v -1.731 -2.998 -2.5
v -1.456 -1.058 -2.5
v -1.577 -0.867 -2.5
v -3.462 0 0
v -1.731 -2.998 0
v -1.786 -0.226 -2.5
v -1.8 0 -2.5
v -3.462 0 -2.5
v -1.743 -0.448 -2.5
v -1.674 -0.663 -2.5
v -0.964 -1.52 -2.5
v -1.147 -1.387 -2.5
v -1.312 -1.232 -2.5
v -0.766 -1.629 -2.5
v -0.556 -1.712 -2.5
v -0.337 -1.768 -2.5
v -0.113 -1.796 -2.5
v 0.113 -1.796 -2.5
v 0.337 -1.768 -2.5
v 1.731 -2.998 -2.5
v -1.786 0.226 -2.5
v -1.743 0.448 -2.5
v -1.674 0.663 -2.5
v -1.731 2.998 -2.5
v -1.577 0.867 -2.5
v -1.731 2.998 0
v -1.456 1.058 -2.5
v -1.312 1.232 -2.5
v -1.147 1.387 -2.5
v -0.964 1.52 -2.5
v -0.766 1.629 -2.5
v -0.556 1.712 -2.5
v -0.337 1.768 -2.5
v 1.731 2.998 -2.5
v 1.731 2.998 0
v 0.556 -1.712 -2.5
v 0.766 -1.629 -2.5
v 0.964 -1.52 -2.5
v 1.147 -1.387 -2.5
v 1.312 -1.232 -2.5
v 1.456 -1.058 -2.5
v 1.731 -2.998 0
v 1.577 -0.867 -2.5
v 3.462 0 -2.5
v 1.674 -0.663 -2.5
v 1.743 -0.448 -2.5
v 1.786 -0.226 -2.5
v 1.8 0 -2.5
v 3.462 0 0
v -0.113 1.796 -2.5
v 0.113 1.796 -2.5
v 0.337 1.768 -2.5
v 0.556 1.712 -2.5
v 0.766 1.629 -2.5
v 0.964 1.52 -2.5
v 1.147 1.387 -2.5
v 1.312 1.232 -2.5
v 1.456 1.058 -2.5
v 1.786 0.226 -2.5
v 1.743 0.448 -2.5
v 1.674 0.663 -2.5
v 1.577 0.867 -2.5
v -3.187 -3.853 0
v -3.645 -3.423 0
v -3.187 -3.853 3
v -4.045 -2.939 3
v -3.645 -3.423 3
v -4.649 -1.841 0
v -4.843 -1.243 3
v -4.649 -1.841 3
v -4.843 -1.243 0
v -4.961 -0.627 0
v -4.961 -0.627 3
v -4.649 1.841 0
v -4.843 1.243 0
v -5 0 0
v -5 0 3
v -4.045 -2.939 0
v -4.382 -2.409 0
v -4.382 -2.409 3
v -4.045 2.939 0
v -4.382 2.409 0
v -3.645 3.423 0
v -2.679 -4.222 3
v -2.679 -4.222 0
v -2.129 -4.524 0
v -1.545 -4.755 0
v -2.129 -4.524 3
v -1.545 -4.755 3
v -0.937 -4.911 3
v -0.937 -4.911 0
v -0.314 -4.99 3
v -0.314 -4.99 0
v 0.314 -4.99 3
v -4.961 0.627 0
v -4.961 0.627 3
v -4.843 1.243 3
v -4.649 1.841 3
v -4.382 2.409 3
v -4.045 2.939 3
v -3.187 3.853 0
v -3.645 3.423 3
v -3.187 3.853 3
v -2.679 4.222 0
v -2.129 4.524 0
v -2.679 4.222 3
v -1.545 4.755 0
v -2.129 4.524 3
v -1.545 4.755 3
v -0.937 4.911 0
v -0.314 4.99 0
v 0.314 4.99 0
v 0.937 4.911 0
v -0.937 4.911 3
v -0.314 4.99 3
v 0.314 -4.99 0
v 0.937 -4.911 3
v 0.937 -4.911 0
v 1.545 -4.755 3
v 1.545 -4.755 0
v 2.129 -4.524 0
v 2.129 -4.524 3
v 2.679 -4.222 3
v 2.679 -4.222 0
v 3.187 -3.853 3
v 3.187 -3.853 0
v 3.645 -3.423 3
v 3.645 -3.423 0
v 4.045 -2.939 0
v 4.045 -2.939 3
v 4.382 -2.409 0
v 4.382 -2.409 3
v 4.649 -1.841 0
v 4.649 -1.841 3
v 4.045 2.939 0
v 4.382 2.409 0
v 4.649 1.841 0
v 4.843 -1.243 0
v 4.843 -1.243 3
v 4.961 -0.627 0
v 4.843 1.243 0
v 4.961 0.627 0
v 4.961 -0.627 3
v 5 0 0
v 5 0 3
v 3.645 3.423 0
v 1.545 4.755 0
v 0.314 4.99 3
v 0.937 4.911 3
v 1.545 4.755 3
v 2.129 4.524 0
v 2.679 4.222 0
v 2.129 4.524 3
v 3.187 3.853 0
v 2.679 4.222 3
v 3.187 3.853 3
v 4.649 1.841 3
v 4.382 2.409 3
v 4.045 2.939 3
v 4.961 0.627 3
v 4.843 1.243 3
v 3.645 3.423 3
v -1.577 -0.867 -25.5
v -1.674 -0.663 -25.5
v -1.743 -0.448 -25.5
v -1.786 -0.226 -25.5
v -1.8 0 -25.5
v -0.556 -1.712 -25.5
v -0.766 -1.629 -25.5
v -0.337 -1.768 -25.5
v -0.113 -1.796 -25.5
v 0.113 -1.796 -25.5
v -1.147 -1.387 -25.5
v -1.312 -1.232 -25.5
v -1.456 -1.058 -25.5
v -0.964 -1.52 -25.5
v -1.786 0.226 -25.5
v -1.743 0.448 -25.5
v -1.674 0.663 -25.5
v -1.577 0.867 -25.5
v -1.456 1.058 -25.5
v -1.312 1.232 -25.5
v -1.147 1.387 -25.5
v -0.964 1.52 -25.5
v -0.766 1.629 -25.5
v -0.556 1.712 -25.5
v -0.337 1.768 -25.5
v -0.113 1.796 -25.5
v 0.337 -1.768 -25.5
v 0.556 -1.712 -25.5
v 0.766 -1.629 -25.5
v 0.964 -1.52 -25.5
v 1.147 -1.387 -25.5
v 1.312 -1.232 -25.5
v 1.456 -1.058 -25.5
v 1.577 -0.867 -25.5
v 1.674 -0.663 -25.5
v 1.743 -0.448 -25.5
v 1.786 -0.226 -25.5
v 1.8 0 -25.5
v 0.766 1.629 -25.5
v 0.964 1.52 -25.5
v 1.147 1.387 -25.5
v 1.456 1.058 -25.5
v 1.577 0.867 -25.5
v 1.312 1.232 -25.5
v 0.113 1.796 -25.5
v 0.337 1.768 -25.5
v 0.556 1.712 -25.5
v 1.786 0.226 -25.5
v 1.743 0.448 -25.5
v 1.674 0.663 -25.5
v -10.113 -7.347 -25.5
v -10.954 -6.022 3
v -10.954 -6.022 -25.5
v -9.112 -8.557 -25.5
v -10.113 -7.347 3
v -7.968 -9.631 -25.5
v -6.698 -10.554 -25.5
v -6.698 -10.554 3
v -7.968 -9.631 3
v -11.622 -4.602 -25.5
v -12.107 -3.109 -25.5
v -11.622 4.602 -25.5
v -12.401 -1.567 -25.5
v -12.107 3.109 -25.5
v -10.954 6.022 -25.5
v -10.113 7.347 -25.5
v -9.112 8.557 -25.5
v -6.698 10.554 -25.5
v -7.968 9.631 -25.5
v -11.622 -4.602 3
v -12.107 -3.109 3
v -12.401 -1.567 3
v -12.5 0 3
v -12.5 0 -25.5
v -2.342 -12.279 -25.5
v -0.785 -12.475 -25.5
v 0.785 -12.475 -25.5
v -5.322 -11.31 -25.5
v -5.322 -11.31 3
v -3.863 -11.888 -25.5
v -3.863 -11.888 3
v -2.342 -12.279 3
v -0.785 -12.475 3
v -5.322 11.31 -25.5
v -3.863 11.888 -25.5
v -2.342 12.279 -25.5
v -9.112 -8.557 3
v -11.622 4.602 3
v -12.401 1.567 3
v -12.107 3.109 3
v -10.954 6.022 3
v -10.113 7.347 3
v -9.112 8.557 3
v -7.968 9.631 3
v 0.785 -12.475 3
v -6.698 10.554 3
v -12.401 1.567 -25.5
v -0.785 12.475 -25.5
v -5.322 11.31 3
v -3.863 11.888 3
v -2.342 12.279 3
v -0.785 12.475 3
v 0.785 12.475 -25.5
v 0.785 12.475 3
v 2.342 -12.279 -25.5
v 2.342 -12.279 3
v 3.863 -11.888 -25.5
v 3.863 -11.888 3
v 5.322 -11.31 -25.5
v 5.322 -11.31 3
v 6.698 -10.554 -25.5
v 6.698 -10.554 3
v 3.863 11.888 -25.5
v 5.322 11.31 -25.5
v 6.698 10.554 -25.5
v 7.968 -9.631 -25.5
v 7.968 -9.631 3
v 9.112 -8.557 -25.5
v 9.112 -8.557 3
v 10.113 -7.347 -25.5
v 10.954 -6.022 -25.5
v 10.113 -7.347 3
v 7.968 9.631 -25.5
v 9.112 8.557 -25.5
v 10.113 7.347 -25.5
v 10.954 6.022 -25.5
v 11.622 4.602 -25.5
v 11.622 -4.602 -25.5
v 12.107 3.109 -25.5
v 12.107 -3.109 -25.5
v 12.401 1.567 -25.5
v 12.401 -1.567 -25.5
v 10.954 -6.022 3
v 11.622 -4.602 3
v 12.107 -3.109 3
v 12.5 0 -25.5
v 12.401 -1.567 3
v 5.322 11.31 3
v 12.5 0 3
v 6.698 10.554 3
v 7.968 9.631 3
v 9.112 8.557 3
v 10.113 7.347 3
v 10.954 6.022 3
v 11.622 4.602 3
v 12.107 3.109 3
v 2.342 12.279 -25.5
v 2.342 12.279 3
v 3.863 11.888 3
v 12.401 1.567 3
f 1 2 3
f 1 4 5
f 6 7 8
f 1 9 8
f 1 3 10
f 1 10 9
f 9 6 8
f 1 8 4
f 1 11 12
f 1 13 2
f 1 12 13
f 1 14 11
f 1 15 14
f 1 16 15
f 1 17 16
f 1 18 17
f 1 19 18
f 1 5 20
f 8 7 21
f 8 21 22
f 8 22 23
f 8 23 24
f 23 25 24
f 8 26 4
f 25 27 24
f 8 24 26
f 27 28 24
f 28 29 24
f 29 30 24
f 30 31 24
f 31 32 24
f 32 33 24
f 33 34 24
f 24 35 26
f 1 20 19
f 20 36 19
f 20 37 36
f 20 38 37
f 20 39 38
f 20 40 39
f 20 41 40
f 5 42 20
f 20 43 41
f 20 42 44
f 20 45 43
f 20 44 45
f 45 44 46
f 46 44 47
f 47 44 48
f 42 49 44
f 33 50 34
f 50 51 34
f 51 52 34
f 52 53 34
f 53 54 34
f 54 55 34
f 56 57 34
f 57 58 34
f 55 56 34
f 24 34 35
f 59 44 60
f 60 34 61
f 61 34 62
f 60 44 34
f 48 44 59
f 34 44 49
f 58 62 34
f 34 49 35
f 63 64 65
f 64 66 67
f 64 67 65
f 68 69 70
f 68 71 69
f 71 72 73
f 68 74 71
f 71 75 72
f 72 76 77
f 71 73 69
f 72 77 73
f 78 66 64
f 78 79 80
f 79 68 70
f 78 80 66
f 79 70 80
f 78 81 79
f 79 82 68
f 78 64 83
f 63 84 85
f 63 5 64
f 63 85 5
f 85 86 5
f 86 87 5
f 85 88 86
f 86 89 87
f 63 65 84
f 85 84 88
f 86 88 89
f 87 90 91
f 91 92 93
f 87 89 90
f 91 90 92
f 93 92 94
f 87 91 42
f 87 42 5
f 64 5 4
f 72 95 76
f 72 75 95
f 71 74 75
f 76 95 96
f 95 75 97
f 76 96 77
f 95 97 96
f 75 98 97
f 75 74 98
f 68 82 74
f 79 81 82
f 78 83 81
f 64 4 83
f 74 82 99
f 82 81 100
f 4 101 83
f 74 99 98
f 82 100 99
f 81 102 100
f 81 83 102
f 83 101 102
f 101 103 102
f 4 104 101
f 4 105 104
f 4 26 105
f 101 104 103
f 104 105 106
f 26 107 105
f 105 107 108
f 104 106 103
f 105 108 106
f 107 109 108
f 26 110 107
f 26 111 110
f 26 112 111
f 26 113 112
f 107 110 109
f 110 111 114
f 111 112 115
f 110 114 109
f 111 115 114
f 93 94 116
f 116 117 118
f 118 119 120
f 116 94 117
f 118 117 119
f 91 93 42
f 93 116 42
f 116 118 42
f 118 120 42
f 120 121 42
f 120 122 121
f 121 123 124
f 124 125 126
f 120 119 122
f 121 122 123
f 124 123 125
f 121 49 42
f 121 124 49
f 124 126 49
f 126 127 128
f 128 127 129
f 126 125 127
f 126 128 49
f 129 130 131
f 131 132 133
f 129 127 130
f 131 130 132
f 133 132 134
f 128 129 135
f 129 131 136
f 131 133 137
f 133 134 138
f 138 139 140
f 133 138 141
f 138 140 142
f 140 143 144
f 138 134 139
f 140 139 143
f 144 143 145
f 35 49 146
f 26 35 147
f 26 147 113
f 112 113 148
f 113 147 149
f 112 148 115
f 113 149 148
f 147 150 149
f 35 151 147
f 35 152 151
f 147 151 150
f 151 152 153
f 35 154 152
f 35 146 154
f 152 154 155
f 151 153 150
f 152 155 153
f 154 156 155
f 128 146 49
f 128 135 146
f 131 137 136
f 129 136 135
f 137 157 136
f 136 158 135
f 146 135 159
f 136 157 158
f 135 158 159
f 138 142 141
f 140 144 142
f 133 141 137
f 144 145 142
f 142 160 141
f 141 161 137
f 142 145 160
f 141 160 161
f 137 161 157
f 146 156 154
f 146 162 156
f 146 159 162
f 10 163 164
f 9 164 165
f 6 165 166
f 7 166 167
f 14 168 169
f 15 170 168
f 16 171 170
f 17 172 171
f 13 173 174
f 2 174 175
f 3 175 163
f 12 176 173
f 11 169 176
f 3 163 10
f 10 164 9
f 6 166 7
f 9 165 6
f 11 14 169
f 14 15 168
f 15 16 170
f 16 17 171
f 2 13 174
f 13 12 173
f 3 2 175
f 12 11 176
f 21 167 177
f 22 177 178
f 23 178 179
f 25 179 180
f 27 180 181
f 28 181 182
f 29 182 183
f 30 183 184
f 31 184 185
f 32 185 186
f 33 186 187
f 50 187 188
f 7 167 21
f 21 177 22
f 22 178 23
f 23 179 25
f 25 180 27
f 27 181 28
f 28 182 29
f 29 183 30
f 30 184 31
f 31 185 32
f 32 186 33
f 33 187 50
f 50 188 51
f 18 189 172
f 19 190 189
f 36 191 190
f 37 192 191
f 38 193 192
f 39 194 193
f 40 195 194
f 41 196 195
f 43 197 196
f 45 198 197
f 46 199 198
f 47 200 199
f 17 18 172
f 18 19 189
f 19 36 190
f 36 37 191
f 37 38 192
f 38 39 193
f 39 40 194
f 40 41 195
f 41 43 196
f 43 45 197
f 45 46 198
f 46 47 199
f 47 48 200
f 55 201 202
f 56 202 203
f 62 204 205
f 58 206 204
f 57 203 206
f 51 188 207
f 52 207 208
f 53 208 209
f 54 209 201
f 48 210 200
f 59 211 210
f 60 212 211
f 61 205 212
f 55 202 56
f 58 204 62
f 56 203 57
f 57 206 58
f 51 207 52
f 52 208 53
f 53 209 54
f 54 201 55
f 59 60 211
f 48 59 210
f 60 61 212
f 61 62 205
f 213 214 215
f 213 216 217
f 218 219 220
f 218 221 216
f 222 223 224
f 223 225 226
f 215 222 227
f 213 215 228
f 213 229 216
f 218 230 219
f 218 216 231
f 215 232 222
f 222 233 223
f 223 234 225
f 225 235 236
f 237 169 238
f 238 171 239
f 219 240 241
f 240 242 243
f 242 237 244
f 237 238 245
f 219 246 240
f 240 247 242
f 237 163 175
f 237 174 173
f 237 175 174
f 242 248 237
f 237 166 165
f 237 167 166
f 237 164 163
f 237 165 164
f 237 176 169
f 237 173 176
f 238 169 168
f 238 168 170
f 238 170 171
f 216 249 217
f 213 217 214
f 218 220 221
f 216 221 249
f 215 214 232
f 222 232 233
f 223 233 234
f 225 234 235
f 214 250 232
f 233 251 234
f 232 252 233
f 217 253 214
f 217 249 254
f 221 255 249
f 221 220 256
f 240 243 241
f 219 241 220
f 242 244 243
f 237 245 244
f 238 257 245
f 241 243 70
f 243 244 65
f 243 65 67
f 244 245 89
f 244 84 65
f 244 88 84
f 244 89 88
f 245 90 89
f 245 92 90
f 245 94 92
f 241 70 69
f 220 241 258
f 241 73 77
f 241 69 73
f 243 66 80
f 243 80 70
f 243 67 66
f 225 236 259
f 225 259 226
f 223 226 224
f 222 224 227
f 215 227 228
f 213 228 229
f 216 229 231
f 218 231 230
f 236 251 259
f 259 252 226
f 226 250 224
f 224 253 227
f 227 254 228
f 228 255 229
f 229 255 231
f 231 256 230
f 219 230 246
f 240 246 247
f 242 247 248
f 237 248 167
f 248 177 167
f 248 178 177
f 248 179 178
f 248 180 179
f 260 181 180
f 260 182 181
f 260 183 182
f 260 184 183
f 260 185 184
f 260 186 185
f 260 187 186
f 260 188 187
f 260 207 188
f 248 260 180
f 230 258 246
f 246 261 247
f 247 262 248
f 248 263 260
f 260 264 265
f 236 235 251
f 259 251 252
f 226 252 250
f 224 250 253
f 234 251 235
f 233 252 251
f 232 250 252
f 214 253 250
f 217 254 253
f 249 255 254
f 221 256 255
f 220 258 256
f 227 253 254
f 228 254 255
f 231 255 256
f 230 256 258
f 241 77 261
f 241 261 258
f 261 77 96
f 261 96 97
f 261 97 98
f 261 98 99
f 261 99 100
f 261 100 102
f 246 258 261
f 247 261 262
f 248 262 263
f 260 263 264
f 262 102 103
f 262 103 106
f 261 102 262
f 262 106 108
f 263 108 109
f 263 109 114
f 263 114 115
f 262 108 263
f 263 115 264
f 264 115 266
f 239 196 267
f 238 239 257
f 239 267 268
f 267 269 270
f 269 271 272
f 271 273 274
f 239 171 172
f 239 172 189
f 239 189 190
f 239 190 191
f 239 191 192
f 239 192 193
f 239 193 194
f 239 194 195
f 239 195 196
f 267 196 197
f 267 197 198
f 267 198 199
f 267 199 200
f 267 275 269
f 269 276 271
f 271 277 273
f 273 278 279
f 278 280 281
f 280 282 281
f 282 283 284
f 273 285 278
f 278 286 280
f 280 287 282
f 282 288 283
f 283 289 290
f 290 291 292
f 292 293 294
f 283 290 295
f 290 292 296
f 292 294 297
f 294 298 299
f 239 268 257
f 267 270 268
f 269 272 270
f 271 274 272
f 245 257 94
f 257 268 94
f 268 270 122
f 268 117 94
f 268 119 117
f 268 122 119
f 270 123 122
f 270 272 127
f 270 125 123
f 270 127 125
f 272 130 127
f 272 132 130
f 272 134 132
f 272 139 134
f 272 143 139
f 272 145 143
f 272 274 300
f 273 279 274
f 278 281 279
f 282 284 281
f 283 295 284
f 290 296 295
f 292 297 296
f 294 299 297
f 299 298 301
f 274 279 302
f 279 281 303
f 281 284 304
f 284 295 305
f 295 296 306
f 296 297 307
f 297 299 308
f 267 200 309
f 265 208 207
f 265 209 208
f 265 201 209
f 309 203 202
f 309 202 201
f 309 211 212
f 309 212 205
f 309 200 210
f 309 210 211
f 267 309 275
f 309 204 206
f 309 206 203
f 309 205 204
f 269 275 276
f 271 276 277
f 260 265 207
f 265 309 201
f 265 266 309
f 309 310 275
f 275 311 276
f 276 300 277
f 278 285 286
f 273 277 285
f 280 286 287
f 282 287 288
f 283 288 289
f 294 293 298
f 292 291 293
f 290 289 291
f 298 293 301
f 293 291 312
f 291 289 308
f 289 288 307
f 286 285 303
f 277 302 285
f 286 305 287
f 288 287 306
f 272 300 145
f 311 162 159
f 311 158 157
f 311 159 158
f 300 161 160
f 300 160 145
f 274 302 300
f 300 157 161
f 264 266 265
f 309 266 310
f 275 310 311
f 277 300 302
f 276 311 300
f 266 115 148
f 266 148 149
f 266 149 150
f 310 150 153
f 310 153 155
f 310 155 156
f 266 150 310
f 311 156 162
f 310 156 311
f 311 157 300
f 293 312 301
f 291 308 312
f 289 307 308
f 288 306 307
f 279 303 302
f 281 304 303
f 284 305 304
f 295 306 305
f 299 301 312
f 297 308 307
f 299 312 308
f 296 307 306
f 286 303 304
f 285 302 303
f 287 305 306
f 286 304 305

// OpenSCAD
$fn = 50;

difference() {
	union() {
		translate(v = [0, 0, -25.5]) {
			cylinder(h = 28.5, r = 12.5);
		}
	}
	union() {
		translate(v = [0, 0, 0]) {
			rotate(a = [0, 0, 0]) {
				difference() {
					union() {
						translate(v = [0, 0, -2.5]) {
							linear_extrude(height = 2.5) {
								polygon(points = [[3.4619999999999997, 0.0], [1.7310000000000003, 2.9981799479017264], [-1.7309999999999992, 2.9981799479017264], [-3.4619999999999997, 4.2397272186481365e-16], [-1.7310000000000014, -2.998179947901726], [1.7309999999999977, -2.9981799479017277]]);
							}
						}
					}
					union();
				}
			}
		}
		#cylinder(h = 3, r = 5.0);
		#translate(v = [0, 0, -100.0]) {
			cylinder(h = 200, r = 1.8);
		}
	}
}
